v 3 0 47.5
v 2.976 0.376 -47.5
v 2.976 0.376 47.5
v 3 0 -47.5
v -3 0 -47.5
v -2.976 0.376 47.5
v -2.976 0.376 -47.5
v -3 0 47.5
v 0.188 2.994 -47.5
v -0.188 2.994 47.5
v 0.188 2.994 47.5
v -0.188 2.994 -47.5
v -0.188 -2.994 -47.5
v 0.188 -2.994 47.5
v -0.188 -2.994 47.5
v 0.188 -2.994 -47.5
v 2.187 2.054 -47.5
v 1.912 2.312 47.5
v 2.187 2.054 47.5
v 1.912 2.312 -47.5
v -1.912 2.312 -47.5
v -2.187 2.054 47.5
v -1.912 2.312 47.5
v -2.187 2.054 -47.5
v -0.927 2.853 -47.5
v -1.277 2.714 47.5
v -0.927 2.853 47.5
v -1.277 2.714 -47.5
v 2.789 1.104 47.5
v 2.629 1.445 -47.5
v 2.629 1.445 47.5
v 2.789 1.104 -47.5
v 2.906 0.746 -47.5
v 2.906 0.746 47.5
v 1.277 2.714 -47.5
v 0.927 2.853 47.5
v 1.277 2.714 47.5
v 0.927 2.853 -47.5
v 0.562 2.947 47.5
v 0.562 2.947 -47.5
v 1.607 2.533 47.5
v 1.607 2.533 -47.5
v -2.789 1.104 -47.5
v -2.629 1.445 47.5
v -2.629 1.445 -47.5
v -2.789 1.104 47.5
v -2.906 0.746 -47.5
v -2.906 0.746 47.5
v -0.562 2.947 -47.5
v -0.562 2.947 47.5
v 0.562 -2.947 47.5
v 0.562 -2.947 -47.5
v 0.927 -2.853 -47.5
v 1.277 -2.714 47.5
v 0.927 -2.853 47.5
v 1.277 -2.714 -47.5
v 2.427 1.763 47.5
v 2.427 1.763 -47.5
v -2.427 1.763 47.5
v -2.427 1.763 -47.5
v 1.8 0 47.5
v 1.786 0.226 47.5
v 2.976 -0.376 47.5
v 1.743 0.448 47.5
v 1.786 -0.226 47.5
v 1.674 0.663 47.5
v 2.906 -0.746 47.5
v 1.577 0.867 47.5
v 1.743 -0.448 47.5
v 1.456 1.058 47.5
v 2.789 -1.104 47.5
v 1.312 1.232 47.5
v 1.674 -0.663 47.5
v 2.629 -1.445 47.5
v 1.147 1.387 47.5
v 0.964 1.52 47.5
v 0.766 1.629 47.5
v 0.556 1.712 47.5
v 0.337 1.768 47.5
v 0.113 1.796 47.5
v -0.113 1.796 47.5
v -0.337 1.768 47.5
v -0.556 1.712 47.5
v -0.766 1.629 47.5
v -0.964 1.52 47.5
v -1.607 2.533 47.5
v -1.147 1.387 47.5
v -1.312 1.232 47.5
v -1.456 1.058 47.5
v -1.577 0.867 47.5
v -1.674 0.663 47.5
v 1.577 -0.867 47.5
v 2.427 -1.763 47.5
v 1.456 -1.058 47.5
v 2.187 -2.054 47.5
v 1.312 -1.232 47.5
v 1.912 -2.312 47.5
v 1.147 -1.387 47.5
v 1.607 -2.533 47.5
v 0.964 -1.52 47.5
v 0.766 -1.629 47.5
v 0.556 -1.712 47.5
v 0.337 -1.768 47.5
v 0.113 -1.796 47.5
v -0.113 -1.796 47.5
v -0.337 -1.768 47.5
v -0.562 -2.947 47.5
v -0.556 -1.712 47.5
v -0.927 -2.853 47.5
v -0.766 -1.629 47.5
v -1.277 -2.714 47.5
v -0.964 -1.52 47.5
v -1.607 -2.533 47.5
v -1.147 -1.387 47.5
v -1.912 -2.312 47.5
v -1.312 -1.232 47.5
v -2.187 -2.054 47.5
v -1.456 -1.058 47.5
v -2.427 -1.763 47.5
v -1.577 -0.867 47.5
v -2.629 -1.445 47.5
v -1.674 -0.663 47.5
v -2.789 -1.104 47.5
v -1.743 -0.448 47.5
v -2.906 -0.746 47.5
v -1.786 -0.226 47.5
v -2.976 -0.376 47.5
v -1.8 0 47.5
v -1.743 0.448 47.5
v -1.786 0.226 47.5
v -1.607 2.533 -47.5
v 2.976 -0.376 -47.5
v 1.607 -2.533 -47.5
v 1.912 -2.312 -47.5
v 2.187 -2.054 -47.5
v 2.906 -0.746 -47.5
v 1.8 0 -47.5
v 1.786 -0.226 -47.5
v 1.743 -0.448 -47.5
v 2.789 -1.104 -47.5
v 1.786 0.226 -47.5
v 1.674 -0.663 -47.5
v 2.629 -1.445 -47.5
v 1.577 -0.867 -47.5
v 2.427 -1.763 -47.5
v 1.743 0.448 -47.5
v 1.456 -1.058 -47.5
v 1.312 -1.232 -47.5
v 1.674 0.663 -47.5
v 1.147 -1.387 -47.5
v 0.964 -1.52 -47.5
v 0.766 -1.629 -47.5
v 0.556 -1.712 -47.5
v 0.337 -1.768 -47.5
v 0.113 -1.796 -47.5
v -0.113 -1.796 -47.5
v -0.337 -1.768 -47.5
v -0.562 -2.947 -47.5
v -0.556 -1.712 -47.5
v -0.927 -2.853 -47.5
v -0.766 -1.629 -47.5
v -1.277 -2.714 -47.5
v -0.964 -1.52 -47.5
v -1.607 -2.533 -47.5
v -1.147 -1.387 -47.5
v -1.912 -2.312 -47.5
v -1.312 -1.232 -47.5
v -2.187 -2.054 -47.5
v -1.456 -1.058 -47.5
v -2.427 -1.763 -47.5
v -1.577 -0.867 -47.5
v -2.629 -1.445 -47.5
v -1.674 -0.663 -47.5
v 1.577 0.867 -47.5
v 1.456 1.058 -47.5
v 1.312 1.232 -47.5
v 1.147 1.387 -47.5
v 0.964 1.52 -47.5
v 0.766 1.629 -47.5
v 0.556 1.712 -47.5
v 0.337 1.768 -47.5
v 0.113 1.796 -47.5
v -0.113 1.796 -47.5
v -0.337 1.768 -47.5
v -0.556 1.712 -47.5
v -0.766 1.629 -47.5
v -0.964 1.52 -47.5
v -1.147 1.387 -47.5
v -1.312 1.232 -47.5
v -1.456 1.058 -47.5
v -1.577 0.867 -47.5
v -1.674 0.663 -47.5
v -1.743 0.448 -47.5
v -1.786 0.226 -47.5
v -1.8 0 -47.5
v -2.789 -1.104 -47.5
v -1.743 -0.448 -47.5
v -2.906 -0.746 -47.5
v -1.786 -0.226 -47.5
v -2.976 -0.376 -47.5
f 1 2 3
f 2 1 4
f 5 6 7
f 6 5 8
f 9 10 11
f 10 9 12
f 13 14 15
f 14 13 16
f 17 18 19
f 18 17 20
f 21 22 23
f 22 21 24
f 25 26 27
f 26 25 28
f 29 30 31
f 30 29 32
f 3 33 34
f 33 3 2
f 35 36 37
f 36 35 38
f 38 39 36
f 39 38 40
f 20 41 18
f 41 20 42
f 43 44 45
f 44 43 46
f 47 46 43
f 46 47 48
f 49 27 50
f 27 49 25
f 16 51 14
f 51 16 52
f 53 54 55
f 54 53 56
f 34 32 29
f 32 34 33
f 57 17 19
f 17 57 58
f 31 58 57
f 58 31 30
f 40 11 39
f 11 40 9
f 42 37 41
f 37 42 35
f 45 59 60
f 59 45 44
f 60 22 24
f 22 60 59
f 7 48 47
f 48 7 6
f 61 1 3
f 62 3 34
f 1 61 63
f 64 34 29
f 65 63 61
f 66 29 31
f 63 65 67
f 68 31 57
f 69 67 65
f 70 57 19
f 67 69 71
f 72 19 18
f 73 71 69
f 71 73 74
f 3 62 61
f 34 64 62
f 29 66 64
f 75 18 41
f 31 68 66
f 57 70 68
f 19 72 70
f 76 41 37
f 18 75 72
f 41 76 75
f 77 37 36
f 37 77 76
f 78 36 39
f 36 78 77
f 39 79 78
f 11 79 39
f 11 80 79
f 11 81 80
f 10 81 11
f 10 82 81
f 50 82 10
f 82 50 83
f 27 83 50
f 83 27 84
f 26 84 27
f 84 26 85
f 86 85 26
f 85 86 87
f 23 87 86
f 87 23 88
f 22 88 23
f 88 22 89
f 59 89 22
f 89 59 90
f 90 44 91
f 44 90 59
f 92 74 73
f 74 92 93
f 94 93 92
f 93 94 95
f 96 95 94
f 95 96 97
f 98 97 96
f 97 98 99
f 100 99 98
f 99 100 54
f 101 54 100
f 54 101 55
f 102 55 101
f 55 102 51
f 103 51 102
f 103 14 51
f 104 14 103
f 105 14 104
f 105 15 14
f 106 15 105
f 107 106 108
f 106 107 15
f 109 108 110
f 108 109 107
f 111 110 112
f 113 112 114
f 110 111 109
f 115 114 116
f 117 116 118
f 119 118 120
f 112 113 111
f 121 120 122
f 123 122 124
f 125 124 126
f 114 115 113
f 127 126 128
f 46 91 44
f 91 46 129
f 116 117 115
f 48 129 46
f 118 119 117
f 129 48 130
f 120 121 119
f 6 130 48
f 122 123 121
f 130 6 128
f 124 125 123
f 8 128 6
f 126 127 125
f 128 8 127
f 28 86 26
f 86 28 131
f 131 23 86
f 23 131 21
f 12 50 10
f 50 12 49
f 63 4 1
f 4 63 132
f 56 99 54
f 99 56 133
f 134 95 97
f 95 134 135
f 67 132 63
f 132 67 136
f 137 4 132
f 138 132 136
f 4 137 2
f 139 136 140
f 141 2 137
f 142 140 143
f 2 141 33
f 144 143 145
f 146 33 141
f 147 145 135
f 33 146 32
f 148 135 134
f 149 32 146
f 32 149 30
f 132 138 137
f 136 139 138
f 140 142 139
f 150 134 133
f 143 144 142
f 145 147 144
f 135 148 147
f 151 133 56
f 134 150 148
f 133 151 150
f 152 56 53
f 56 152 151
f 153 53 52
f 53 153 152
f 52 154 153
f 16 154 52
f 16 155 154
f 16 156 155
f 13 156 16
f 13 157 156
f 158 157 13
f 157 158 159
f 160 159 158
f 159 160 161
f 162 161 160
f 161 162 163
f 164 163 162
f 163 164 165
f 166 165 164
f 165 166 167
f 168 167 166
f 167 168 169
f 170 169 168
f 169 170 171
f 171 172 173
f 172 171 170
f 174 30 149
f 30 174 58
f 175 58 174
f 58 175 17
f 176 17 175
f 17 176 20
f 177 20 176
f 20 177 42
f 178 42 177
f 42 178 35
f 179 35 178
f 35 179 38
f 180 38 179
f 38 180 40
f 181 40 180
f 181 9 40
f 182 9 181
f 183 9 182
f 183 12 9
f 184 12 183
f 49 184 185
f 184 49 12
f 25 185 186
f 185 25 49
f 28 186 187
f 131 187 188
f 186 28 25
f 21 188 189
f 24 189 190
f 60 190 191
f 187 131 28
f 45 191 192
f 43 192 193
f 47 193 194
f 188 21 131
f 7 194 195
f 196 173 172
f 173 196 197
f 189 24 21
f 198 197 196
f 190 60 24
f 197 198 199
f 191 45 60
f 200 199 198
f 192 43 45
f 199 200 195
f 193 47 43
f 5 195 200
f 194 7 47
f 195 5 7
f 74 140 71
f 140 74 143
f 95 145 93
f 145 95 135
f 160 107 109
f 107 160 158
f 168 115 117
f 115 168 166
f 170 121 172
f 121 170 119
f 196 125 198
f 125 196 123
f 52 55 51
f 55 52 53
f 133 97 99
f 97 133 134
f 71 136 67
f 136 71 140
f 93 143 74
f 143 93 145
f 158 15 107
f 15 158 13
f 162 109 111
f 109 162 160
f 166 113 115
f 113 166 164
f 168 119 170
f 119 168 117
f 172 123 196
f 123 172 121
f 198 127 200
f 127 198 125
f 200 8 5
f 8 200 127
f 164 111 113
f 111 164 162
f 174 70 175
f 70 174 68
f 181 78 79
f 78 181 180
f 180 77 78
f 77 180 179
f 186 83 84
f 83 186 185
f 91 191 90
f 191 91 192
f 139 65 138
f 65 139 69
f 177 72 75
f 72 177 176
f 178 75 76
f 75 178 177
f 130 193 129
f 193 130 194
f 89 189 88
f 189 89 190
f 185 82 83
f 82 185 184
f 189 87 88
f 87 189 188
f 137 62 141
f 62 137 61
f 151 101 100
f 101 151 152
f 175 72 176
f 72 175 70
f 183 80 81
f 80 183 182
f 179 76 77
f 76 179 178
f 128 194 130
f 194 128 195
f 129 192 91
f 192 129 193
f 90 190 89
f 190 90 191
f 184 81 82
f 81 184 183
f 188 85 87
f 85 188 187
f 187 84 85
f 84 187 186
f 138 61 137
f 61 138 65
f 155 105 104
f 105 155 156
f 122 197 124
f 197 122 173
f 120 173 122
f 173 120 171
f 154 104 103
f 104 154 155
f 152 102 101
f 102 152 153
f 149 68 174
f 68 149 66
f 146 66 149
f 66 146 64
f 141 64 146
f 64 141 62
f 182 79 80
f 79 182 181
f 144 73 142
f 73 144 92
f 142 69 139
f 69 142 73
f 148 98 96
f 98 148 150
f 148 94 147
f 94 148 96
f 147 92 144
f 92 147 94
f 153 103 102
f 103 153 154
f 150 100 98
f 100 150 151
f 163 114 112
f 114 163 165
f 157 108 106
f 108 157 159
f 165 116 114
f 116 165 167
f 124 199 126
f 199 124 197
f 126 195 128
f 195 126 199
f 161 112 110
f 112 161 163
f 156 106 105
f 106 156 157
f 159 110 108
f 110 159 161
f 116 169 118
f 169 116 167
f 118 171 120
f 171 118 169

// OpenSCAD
$fn = 50;


difference() {
	union() {
		translate(v = [0, 0, -47.5000000000]) {
			cylinder(h = 95, r = 3.0000000000);
		}
	}
	union() {
		translate(v = [0, 0, -100.0000000000]) {
			cylinder(h = 200, r = 1.8000000000);
		}
	}
}
